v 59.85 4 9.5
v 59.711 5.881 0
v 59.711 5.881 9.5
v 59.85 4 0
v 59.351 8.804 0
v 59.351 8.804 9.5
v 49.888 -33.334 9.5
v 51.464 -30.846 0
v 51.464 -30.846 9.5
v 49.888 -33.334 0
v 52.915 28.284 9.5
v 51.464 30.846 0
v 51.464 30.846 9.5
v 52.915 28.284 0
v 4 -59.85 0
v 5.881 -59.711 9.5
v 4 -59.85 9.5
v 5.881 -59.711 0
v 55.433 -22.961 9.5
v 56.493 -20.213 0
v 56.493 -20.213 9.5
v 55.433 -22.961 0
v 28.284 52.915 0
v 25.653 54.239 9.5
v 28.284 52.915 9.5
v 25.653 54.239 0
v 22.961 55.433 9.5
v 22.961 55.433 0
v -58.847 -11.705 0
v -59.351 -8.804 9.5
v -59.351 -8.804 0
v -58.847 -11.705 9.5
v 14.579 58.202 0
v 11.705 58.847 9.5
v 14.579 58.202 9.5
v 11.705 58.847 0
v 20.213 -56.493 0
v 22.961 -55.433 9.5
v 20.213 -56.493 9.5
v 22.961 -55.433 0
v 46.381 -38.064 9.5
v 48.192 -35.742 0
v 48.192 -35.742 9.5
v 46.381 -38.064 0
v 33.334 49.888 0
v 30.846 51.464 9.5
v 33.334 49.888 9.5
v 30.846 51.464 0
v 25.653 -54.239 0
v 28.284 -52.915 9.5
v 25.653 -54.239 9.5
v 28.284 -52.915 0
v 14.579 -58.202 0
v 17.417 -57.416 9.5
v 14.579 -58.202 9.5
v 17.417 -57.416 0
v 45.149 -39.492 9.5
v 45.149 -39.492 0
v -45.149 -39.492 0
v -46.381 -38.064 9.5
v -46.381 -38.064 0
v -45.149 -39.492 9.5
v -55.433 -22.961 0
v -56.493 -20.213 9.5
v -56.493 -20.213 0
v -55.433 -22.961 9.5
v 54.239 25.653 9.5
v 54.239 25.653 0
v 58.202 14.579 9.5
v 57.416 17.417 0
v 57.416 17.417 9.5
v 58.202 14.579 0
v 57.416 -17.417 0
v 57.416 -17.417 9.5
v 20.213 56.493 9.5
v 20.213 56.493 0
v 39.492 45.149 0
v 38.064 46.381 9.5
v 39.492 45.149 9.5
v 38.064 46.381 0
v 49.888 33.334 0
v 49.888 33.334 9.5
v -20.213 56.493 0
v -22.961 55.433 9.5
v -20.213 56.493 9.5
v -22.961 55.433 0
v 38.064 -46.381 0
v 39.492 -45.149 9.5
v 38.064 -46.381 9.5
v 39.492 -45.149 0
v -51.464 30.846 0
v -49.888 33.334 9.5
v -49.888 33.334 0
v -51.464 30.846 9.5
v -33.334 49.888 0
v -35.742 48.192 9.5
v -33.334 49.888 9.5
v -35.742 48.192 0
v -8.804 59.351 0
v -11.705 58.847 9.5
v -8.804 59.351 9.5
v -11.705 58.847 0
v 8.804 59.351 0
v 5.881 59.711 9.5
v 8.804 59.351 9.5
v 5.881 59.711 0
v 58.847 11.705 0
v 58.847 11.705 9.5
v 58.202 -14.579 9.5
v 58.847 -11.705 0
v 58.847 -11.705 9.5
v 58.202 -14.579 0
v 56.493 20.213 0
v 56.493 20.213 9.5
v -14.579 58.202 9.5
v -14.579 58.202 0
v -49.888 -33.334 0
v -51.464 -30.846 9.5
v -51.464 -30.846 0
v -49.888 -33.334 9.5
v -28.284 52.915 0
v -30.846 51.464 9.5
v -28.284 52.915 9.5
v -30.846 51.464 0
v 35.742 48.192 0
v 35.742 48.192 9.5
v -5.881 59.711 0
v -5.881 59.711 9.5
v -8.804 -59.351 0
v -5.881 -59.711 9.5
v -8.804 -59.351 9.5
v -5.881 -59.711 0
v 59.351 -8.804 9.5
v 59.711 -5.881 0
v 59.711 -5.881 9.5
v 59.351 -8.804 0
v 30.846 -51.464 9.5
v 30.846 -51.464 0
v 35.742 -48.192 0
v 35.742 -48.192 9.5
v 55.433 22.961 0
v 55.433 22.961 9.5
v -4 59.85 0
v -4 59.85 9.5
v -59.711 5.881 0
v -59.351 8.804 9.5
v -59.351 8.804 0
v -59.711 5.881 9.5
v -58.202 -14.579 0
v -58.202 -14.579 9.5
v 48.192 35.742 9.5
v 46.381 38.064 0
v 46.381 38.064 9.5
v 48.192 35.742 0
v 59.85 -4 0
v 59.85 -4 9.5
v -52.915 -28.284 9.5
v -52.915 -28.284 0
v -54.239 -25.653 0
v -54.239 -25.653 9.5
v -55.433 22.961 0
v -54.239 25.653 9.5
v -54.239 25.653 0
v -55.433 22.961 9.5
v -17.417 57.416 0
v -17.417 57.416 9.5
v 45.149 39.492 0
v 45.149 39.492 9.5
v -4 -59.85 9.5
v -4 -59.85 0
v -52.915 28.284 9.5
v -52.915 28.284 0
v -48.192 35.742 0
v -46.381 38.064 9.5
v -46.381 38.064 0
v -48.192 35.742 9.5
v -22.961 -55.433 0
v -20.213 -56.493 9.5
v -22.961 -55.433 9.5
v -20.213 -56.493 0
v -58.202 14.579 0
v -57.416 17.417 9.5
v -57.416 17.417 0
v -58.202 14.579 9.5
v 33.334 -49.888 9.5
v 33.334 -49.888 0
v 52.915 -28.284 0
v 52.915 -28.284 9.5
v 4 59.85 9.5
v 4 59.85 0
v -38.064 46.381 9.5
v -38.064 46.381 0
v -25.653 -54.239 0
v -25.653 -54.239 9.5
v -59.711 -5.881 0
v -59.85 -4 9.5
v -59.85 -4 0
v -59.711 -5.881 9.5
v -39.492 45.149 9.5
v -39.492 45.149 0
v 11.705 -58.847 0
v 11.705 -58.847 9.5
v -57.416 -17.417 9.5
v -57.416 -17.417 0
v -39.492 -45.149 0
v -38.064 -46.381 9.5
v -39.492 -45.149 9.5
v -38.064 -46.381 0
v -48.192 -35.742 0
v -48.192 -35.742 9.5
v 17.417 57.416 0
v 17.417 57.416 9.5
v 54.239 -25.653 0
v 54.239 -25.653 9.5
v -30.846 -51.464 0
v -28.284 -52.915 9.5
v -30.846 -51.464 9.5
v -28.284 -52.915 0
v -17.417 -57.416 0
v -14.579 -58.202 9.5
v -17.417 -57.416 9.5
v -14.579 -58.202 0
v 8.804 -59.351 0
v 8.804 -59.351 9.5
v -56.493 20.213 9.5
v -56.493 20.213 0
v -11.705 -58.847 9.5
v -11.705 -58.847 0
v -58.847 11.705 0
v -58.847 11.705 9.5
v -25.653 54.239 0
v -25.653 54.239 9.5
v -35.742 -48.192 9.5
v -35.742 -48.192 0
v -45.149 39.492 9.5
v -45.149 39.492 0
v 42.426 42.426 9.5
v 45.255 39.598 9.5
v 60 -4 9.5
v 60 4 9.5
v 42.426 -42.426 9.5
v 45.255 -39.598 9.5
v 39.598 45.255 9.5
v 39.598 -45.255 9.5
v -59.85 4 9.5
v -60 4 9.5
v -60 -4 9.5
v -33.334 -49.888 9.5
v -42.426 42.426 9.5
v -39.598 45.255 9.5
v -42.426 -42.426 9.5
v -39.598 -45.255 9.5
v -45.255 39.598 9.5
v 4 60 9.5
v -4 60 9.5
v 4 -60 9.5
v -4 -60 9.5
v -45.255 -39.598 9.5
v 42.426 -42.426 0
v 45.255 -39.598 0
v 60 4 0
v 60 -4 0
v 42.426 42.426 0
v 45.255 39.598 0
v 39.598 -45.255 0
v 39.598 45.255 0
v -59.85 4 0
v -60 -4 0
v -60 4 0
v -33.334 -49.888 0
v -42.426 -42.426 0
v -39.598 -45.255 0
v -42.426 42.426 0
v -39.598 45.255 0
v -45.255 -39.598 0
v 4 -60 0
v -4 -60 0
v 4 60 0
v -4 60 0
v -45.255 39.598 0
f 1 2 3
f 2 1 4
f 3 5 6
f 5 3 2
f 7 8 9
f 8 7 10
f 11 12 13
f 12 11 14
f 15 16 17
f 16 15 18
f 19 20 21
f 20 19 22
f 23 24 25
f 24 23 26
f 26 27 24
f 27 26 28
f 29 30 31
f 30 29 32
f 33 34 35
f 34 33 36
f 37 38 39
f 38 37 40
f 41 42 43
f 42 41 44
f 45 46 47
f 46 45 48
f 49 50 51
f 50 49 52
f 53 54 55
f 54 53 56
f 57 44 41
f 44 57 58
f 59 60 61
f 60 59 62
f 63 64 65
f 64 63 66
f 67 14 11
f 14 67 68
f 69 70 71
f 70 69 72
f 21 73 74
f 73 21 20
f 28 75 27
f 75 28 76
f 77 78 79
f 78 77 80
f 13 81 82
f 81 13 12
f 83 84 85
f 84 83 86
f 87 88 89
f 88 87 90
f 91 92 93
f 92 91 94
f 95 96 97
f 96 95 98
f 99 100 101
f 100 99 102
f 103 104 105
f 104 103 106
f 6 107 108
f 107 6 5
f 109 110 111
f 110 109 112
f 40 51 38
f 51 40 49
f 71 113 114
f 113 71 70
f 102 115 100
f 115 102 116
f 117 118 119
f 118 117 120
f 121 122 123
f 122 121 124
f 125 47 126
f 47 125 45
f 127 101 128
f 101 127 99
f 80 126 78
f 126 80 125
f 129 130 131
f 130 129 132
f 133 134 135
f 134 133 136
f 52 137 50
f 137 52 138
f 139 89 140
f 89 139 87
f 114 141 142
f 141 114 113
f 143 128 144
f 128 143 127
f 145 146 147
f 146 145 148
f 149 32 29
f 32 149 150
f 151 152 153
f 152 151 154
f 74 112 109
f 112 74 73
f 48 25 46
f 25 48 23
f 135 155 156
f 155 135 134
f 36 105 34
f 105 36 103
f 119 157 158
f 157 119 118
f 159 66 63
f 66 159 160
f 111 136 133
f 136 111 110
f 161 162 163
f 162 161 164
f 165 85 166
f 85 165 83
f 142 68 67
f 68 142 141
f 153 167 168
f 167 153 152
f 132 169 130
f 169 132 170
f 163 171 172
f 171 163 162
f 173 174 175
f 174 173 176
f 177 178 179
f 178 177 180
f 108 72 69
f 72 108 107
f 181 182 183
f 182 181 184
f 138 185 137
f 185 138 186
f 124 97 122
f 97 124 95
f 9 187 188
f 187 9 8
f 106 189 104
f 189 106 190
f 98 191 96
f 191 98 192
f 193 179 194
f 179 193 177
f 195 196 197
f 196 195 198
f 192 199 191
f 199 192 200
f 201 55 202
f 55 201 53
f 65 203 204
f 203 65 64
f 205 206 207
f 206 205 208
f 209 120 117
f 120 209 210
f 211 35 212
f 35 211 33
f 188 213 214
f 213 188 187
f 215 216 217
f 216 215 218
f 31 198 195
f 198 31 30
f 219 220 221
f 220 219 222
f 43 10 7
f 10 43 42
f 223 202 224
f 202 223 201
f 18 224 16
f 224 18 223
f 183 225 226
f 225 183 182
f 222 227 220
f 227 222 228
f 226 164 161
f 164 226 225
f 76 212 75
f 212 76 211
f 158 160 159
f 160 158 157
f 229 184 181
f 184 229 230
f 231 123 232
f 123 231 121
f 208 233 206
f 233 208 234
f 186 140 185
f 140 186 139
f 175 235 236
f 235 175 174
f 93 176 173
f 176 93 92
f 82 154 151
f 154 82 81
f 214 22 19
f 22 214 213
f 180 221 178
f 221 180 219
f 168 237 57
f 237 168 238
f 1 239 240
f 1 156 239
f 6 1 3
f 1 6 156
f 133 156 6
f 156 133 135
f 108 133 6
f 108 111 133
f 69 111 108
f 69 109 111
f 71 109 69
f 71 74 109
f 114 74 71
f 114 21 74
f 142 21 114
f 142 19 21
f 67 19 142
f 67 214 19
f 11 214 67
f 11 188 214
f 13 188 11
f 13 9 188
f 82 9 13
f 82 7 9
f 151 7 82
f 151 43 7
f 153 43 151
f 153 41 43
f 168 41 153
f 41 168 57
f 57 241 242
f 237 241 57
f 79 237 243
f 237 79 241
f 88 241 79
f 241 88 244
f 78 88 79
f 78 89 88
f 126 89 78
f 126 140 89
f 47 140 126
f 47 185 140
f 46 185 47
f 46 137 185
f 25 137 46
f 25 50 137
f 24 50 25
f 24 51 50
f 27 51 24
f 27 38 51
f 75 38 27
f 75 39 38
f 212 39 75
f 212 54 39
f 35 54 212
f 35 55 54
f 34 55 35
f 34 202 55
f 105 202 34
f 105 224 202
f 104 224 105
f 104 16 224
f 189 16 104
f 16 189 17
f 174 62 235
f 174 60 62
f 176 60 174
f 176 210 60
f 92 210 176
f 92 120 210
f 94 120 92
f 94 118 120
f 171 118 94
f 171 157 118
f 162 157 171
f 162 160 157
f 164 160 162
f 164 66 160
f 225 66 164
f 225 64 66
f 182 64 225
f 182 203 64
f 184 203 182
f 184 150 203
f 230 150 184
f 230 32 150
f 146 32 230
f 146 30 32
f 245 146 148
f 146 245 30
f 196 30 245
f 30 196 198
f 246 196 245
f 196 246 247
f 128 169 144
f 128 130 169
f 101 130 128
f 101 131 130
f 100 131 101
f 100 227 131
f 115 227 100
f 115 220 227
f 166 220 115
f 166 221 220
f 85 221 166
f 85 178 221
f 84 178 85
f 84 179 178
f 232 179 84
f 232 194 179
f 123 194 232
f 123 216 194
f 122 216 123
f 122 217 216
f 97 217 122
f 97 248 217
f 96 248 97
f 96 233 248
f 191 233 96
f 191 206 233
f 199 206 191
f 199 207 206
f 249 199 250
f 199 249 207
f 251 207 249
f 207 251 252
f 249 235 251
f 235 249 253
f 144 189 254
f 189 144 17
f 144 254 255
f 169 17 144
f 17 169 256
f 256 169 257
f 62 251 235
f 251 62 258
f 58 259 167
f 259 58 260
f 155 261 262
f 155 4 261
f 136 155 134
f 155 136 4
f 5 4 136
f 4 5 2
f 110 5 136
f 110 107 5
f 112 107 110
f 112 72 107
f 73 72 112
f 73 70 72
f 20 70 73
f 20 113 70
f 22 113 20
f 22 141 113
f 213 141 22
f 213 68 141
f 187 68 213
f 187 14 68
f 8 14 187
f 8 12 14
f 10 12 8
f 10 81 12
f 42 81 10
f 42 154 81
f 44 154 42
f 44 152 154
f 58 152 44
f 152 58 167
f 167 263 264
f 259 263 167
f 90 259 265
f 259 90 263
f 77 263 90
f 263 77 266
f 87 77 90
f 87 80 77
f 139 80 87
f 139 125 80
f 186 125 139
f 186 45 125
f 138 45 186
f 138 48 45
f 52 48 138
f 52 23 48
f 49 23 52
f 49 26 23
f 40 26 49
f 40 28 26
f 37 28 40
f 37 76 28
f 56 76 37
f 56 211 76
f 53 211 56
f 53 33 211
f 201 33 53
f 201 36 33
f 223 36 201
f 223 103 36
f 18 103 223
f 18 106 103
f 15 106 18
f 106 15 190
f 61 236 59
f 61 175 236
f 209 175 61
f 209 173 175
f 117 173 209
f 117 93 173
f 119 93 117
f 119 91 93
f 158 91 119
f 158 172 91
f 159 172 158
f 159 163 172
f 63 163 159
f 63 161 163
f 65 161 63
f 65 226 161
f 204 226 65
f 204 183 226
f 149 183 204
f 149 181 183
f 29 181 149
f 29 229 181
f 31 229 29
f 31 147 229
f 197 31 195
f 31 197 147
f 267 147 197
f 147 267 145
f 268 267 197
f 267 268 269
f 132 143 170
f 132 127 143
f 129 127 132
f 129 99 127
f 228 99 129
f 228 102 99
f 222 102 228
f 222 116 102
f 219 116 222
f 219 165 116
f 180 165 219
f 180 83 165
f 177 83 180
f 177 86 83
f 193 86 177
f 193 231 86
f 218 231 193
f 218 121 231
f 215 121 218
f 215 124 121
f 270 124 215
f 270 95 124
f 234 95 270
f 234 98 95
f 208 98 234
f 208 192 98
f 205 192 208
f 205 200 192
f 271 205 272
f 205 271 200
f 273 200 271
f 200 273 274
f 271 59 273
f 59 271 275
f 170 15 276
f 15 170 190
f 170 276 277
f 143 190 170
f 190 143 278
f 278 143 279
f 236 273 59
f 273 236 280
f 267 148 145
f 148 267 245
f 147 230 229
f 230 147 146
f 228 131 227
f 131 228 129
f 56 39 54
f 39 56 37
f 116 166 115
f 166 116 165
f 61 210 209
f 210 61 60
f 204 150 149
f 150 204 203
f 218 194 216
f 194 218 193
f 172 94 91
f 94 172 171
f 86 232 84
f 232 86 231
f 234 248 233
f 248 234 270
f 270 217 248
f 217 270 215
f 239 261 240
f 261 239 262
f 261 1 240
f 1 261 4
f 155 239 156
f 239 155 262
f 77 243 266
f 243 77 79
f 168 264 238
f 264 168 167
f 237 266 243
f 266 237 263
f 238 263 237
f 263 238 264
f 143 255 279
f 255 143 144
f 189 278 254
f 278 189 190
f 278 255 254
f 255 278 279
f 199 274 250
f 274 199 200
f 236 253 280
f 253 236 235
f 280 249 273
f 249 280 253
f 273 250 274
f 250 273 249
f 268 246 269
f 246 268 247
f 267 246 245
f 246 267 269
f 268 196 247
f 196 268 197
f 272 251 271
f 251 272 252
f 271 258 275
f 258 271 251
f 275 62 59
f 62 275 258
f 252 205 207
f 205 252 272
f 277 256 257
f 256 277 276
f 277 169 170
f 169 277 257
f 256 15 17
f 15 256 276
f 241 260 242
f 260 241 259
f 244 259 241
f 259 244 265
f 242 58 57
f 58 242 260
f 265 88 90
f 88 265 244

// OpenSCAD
/* doodle-meta {"version":1,"parameters":{"outer_diameter":{"label":"Outer Diameter","description":"Diameter of the wheel rim","unit":"mm","feature":"outer_rim"},"thickness":{"label":"Thickness","description":"Height of the wheel disc","unit":"mm","feature":"body_thickness"},"hub_diameter":{"label":"Hub Diameter","description":"Diameter of the central hub","unit":"mm","feature":"central_hub"},"spoke_width":{"label":"Spoke Width","description":"Width of each radial spoke","unit":"mm","feature":"spokes"},"spoke_count":{"label":"Spoke Count","description":"Number of radial spokes","unit":"count","feature":"spokes"}},"features":{"outer_rim":{"kind":"dimension","axis":"x","label":"Outer Diameter"},"body_thickness":{"kind":"dimension","axis":"z","label":"Thickness"},"central_hub":{"kind":"dimension","axis":"x","label":"Hub Diameter"},"spokes":{"kind":"region","label":"Spokes","min":[0,0,0],"max":[{"parameter":"outer_diameter","scale":0.5},{"parameter":"outer_diameter","scale":0.5},{"parameter":"thickness"}]}}} */

// Parameters
outer_diameter = 120.0;
thickness = 9.5;
hub_diameter = 30.0;
spoke_width = 8.0;
spoke_count = 8;

// Derived constants
outer_radius = outer_diameter / 2;
hub_radius = hub_diameter / 2;
eps = 0.01;

// Main Design
wheel_disc();

module wheel_disc() {
    // 1. Base Solid: Outer Cylinder
    // Positioned so bottom is at Z=0
    translate([0, 0, 0])
        cylinder(h=thickness, r=outer_radius, center=false, $fn=128);

    // 2. Subtract Inter-Spoke Voids
    // We subtract the space between spokes to leave the rim, hub, and spokes.
    // The voids are sectors of an annulus from hub_radius to outer_radius.
    difference() {
        // Re-assert base solid for difference context (though we are inside a module, 
        // standard practice is to build positive then subtract. 
        // Here we use a union of positive parts approach which is cleaner for spokes)
        
        // Actually, let's use the Union approach for clarity and manifold safety:
        // Union of Rim + Hub + Spokes.
    }
    
    // Let's restart the module logic with a Union approach which is robust for this shape.
    union() {
        // Outer Rim
        difference() {
            cylinder(h=thickness, r=outer_radius, center=false, $fn=128);
            cylinder(h=thickness + 2*eps, r=outer_radius - spoke_width, center=true, $fn=128);
        }
        
        // Central Hub
        cylinder(h=thickness, r=hub_radius, center=false, $fn=64);
        
        // Spokes
        for (i = [0 : spoke_count - 1]) {
            rotate([0, 0, i * (360 / spoke_count)]) {
                // Spoke extends from center (overlapping hub) to outer edge (overlapping rim)
                // Width is spoke_width, Length is outer_radius
                translate([0, -spoke_width/2, 0])
                    cube([outer_radius, spoke_width, thickness]);
            }
        }
    }
}
